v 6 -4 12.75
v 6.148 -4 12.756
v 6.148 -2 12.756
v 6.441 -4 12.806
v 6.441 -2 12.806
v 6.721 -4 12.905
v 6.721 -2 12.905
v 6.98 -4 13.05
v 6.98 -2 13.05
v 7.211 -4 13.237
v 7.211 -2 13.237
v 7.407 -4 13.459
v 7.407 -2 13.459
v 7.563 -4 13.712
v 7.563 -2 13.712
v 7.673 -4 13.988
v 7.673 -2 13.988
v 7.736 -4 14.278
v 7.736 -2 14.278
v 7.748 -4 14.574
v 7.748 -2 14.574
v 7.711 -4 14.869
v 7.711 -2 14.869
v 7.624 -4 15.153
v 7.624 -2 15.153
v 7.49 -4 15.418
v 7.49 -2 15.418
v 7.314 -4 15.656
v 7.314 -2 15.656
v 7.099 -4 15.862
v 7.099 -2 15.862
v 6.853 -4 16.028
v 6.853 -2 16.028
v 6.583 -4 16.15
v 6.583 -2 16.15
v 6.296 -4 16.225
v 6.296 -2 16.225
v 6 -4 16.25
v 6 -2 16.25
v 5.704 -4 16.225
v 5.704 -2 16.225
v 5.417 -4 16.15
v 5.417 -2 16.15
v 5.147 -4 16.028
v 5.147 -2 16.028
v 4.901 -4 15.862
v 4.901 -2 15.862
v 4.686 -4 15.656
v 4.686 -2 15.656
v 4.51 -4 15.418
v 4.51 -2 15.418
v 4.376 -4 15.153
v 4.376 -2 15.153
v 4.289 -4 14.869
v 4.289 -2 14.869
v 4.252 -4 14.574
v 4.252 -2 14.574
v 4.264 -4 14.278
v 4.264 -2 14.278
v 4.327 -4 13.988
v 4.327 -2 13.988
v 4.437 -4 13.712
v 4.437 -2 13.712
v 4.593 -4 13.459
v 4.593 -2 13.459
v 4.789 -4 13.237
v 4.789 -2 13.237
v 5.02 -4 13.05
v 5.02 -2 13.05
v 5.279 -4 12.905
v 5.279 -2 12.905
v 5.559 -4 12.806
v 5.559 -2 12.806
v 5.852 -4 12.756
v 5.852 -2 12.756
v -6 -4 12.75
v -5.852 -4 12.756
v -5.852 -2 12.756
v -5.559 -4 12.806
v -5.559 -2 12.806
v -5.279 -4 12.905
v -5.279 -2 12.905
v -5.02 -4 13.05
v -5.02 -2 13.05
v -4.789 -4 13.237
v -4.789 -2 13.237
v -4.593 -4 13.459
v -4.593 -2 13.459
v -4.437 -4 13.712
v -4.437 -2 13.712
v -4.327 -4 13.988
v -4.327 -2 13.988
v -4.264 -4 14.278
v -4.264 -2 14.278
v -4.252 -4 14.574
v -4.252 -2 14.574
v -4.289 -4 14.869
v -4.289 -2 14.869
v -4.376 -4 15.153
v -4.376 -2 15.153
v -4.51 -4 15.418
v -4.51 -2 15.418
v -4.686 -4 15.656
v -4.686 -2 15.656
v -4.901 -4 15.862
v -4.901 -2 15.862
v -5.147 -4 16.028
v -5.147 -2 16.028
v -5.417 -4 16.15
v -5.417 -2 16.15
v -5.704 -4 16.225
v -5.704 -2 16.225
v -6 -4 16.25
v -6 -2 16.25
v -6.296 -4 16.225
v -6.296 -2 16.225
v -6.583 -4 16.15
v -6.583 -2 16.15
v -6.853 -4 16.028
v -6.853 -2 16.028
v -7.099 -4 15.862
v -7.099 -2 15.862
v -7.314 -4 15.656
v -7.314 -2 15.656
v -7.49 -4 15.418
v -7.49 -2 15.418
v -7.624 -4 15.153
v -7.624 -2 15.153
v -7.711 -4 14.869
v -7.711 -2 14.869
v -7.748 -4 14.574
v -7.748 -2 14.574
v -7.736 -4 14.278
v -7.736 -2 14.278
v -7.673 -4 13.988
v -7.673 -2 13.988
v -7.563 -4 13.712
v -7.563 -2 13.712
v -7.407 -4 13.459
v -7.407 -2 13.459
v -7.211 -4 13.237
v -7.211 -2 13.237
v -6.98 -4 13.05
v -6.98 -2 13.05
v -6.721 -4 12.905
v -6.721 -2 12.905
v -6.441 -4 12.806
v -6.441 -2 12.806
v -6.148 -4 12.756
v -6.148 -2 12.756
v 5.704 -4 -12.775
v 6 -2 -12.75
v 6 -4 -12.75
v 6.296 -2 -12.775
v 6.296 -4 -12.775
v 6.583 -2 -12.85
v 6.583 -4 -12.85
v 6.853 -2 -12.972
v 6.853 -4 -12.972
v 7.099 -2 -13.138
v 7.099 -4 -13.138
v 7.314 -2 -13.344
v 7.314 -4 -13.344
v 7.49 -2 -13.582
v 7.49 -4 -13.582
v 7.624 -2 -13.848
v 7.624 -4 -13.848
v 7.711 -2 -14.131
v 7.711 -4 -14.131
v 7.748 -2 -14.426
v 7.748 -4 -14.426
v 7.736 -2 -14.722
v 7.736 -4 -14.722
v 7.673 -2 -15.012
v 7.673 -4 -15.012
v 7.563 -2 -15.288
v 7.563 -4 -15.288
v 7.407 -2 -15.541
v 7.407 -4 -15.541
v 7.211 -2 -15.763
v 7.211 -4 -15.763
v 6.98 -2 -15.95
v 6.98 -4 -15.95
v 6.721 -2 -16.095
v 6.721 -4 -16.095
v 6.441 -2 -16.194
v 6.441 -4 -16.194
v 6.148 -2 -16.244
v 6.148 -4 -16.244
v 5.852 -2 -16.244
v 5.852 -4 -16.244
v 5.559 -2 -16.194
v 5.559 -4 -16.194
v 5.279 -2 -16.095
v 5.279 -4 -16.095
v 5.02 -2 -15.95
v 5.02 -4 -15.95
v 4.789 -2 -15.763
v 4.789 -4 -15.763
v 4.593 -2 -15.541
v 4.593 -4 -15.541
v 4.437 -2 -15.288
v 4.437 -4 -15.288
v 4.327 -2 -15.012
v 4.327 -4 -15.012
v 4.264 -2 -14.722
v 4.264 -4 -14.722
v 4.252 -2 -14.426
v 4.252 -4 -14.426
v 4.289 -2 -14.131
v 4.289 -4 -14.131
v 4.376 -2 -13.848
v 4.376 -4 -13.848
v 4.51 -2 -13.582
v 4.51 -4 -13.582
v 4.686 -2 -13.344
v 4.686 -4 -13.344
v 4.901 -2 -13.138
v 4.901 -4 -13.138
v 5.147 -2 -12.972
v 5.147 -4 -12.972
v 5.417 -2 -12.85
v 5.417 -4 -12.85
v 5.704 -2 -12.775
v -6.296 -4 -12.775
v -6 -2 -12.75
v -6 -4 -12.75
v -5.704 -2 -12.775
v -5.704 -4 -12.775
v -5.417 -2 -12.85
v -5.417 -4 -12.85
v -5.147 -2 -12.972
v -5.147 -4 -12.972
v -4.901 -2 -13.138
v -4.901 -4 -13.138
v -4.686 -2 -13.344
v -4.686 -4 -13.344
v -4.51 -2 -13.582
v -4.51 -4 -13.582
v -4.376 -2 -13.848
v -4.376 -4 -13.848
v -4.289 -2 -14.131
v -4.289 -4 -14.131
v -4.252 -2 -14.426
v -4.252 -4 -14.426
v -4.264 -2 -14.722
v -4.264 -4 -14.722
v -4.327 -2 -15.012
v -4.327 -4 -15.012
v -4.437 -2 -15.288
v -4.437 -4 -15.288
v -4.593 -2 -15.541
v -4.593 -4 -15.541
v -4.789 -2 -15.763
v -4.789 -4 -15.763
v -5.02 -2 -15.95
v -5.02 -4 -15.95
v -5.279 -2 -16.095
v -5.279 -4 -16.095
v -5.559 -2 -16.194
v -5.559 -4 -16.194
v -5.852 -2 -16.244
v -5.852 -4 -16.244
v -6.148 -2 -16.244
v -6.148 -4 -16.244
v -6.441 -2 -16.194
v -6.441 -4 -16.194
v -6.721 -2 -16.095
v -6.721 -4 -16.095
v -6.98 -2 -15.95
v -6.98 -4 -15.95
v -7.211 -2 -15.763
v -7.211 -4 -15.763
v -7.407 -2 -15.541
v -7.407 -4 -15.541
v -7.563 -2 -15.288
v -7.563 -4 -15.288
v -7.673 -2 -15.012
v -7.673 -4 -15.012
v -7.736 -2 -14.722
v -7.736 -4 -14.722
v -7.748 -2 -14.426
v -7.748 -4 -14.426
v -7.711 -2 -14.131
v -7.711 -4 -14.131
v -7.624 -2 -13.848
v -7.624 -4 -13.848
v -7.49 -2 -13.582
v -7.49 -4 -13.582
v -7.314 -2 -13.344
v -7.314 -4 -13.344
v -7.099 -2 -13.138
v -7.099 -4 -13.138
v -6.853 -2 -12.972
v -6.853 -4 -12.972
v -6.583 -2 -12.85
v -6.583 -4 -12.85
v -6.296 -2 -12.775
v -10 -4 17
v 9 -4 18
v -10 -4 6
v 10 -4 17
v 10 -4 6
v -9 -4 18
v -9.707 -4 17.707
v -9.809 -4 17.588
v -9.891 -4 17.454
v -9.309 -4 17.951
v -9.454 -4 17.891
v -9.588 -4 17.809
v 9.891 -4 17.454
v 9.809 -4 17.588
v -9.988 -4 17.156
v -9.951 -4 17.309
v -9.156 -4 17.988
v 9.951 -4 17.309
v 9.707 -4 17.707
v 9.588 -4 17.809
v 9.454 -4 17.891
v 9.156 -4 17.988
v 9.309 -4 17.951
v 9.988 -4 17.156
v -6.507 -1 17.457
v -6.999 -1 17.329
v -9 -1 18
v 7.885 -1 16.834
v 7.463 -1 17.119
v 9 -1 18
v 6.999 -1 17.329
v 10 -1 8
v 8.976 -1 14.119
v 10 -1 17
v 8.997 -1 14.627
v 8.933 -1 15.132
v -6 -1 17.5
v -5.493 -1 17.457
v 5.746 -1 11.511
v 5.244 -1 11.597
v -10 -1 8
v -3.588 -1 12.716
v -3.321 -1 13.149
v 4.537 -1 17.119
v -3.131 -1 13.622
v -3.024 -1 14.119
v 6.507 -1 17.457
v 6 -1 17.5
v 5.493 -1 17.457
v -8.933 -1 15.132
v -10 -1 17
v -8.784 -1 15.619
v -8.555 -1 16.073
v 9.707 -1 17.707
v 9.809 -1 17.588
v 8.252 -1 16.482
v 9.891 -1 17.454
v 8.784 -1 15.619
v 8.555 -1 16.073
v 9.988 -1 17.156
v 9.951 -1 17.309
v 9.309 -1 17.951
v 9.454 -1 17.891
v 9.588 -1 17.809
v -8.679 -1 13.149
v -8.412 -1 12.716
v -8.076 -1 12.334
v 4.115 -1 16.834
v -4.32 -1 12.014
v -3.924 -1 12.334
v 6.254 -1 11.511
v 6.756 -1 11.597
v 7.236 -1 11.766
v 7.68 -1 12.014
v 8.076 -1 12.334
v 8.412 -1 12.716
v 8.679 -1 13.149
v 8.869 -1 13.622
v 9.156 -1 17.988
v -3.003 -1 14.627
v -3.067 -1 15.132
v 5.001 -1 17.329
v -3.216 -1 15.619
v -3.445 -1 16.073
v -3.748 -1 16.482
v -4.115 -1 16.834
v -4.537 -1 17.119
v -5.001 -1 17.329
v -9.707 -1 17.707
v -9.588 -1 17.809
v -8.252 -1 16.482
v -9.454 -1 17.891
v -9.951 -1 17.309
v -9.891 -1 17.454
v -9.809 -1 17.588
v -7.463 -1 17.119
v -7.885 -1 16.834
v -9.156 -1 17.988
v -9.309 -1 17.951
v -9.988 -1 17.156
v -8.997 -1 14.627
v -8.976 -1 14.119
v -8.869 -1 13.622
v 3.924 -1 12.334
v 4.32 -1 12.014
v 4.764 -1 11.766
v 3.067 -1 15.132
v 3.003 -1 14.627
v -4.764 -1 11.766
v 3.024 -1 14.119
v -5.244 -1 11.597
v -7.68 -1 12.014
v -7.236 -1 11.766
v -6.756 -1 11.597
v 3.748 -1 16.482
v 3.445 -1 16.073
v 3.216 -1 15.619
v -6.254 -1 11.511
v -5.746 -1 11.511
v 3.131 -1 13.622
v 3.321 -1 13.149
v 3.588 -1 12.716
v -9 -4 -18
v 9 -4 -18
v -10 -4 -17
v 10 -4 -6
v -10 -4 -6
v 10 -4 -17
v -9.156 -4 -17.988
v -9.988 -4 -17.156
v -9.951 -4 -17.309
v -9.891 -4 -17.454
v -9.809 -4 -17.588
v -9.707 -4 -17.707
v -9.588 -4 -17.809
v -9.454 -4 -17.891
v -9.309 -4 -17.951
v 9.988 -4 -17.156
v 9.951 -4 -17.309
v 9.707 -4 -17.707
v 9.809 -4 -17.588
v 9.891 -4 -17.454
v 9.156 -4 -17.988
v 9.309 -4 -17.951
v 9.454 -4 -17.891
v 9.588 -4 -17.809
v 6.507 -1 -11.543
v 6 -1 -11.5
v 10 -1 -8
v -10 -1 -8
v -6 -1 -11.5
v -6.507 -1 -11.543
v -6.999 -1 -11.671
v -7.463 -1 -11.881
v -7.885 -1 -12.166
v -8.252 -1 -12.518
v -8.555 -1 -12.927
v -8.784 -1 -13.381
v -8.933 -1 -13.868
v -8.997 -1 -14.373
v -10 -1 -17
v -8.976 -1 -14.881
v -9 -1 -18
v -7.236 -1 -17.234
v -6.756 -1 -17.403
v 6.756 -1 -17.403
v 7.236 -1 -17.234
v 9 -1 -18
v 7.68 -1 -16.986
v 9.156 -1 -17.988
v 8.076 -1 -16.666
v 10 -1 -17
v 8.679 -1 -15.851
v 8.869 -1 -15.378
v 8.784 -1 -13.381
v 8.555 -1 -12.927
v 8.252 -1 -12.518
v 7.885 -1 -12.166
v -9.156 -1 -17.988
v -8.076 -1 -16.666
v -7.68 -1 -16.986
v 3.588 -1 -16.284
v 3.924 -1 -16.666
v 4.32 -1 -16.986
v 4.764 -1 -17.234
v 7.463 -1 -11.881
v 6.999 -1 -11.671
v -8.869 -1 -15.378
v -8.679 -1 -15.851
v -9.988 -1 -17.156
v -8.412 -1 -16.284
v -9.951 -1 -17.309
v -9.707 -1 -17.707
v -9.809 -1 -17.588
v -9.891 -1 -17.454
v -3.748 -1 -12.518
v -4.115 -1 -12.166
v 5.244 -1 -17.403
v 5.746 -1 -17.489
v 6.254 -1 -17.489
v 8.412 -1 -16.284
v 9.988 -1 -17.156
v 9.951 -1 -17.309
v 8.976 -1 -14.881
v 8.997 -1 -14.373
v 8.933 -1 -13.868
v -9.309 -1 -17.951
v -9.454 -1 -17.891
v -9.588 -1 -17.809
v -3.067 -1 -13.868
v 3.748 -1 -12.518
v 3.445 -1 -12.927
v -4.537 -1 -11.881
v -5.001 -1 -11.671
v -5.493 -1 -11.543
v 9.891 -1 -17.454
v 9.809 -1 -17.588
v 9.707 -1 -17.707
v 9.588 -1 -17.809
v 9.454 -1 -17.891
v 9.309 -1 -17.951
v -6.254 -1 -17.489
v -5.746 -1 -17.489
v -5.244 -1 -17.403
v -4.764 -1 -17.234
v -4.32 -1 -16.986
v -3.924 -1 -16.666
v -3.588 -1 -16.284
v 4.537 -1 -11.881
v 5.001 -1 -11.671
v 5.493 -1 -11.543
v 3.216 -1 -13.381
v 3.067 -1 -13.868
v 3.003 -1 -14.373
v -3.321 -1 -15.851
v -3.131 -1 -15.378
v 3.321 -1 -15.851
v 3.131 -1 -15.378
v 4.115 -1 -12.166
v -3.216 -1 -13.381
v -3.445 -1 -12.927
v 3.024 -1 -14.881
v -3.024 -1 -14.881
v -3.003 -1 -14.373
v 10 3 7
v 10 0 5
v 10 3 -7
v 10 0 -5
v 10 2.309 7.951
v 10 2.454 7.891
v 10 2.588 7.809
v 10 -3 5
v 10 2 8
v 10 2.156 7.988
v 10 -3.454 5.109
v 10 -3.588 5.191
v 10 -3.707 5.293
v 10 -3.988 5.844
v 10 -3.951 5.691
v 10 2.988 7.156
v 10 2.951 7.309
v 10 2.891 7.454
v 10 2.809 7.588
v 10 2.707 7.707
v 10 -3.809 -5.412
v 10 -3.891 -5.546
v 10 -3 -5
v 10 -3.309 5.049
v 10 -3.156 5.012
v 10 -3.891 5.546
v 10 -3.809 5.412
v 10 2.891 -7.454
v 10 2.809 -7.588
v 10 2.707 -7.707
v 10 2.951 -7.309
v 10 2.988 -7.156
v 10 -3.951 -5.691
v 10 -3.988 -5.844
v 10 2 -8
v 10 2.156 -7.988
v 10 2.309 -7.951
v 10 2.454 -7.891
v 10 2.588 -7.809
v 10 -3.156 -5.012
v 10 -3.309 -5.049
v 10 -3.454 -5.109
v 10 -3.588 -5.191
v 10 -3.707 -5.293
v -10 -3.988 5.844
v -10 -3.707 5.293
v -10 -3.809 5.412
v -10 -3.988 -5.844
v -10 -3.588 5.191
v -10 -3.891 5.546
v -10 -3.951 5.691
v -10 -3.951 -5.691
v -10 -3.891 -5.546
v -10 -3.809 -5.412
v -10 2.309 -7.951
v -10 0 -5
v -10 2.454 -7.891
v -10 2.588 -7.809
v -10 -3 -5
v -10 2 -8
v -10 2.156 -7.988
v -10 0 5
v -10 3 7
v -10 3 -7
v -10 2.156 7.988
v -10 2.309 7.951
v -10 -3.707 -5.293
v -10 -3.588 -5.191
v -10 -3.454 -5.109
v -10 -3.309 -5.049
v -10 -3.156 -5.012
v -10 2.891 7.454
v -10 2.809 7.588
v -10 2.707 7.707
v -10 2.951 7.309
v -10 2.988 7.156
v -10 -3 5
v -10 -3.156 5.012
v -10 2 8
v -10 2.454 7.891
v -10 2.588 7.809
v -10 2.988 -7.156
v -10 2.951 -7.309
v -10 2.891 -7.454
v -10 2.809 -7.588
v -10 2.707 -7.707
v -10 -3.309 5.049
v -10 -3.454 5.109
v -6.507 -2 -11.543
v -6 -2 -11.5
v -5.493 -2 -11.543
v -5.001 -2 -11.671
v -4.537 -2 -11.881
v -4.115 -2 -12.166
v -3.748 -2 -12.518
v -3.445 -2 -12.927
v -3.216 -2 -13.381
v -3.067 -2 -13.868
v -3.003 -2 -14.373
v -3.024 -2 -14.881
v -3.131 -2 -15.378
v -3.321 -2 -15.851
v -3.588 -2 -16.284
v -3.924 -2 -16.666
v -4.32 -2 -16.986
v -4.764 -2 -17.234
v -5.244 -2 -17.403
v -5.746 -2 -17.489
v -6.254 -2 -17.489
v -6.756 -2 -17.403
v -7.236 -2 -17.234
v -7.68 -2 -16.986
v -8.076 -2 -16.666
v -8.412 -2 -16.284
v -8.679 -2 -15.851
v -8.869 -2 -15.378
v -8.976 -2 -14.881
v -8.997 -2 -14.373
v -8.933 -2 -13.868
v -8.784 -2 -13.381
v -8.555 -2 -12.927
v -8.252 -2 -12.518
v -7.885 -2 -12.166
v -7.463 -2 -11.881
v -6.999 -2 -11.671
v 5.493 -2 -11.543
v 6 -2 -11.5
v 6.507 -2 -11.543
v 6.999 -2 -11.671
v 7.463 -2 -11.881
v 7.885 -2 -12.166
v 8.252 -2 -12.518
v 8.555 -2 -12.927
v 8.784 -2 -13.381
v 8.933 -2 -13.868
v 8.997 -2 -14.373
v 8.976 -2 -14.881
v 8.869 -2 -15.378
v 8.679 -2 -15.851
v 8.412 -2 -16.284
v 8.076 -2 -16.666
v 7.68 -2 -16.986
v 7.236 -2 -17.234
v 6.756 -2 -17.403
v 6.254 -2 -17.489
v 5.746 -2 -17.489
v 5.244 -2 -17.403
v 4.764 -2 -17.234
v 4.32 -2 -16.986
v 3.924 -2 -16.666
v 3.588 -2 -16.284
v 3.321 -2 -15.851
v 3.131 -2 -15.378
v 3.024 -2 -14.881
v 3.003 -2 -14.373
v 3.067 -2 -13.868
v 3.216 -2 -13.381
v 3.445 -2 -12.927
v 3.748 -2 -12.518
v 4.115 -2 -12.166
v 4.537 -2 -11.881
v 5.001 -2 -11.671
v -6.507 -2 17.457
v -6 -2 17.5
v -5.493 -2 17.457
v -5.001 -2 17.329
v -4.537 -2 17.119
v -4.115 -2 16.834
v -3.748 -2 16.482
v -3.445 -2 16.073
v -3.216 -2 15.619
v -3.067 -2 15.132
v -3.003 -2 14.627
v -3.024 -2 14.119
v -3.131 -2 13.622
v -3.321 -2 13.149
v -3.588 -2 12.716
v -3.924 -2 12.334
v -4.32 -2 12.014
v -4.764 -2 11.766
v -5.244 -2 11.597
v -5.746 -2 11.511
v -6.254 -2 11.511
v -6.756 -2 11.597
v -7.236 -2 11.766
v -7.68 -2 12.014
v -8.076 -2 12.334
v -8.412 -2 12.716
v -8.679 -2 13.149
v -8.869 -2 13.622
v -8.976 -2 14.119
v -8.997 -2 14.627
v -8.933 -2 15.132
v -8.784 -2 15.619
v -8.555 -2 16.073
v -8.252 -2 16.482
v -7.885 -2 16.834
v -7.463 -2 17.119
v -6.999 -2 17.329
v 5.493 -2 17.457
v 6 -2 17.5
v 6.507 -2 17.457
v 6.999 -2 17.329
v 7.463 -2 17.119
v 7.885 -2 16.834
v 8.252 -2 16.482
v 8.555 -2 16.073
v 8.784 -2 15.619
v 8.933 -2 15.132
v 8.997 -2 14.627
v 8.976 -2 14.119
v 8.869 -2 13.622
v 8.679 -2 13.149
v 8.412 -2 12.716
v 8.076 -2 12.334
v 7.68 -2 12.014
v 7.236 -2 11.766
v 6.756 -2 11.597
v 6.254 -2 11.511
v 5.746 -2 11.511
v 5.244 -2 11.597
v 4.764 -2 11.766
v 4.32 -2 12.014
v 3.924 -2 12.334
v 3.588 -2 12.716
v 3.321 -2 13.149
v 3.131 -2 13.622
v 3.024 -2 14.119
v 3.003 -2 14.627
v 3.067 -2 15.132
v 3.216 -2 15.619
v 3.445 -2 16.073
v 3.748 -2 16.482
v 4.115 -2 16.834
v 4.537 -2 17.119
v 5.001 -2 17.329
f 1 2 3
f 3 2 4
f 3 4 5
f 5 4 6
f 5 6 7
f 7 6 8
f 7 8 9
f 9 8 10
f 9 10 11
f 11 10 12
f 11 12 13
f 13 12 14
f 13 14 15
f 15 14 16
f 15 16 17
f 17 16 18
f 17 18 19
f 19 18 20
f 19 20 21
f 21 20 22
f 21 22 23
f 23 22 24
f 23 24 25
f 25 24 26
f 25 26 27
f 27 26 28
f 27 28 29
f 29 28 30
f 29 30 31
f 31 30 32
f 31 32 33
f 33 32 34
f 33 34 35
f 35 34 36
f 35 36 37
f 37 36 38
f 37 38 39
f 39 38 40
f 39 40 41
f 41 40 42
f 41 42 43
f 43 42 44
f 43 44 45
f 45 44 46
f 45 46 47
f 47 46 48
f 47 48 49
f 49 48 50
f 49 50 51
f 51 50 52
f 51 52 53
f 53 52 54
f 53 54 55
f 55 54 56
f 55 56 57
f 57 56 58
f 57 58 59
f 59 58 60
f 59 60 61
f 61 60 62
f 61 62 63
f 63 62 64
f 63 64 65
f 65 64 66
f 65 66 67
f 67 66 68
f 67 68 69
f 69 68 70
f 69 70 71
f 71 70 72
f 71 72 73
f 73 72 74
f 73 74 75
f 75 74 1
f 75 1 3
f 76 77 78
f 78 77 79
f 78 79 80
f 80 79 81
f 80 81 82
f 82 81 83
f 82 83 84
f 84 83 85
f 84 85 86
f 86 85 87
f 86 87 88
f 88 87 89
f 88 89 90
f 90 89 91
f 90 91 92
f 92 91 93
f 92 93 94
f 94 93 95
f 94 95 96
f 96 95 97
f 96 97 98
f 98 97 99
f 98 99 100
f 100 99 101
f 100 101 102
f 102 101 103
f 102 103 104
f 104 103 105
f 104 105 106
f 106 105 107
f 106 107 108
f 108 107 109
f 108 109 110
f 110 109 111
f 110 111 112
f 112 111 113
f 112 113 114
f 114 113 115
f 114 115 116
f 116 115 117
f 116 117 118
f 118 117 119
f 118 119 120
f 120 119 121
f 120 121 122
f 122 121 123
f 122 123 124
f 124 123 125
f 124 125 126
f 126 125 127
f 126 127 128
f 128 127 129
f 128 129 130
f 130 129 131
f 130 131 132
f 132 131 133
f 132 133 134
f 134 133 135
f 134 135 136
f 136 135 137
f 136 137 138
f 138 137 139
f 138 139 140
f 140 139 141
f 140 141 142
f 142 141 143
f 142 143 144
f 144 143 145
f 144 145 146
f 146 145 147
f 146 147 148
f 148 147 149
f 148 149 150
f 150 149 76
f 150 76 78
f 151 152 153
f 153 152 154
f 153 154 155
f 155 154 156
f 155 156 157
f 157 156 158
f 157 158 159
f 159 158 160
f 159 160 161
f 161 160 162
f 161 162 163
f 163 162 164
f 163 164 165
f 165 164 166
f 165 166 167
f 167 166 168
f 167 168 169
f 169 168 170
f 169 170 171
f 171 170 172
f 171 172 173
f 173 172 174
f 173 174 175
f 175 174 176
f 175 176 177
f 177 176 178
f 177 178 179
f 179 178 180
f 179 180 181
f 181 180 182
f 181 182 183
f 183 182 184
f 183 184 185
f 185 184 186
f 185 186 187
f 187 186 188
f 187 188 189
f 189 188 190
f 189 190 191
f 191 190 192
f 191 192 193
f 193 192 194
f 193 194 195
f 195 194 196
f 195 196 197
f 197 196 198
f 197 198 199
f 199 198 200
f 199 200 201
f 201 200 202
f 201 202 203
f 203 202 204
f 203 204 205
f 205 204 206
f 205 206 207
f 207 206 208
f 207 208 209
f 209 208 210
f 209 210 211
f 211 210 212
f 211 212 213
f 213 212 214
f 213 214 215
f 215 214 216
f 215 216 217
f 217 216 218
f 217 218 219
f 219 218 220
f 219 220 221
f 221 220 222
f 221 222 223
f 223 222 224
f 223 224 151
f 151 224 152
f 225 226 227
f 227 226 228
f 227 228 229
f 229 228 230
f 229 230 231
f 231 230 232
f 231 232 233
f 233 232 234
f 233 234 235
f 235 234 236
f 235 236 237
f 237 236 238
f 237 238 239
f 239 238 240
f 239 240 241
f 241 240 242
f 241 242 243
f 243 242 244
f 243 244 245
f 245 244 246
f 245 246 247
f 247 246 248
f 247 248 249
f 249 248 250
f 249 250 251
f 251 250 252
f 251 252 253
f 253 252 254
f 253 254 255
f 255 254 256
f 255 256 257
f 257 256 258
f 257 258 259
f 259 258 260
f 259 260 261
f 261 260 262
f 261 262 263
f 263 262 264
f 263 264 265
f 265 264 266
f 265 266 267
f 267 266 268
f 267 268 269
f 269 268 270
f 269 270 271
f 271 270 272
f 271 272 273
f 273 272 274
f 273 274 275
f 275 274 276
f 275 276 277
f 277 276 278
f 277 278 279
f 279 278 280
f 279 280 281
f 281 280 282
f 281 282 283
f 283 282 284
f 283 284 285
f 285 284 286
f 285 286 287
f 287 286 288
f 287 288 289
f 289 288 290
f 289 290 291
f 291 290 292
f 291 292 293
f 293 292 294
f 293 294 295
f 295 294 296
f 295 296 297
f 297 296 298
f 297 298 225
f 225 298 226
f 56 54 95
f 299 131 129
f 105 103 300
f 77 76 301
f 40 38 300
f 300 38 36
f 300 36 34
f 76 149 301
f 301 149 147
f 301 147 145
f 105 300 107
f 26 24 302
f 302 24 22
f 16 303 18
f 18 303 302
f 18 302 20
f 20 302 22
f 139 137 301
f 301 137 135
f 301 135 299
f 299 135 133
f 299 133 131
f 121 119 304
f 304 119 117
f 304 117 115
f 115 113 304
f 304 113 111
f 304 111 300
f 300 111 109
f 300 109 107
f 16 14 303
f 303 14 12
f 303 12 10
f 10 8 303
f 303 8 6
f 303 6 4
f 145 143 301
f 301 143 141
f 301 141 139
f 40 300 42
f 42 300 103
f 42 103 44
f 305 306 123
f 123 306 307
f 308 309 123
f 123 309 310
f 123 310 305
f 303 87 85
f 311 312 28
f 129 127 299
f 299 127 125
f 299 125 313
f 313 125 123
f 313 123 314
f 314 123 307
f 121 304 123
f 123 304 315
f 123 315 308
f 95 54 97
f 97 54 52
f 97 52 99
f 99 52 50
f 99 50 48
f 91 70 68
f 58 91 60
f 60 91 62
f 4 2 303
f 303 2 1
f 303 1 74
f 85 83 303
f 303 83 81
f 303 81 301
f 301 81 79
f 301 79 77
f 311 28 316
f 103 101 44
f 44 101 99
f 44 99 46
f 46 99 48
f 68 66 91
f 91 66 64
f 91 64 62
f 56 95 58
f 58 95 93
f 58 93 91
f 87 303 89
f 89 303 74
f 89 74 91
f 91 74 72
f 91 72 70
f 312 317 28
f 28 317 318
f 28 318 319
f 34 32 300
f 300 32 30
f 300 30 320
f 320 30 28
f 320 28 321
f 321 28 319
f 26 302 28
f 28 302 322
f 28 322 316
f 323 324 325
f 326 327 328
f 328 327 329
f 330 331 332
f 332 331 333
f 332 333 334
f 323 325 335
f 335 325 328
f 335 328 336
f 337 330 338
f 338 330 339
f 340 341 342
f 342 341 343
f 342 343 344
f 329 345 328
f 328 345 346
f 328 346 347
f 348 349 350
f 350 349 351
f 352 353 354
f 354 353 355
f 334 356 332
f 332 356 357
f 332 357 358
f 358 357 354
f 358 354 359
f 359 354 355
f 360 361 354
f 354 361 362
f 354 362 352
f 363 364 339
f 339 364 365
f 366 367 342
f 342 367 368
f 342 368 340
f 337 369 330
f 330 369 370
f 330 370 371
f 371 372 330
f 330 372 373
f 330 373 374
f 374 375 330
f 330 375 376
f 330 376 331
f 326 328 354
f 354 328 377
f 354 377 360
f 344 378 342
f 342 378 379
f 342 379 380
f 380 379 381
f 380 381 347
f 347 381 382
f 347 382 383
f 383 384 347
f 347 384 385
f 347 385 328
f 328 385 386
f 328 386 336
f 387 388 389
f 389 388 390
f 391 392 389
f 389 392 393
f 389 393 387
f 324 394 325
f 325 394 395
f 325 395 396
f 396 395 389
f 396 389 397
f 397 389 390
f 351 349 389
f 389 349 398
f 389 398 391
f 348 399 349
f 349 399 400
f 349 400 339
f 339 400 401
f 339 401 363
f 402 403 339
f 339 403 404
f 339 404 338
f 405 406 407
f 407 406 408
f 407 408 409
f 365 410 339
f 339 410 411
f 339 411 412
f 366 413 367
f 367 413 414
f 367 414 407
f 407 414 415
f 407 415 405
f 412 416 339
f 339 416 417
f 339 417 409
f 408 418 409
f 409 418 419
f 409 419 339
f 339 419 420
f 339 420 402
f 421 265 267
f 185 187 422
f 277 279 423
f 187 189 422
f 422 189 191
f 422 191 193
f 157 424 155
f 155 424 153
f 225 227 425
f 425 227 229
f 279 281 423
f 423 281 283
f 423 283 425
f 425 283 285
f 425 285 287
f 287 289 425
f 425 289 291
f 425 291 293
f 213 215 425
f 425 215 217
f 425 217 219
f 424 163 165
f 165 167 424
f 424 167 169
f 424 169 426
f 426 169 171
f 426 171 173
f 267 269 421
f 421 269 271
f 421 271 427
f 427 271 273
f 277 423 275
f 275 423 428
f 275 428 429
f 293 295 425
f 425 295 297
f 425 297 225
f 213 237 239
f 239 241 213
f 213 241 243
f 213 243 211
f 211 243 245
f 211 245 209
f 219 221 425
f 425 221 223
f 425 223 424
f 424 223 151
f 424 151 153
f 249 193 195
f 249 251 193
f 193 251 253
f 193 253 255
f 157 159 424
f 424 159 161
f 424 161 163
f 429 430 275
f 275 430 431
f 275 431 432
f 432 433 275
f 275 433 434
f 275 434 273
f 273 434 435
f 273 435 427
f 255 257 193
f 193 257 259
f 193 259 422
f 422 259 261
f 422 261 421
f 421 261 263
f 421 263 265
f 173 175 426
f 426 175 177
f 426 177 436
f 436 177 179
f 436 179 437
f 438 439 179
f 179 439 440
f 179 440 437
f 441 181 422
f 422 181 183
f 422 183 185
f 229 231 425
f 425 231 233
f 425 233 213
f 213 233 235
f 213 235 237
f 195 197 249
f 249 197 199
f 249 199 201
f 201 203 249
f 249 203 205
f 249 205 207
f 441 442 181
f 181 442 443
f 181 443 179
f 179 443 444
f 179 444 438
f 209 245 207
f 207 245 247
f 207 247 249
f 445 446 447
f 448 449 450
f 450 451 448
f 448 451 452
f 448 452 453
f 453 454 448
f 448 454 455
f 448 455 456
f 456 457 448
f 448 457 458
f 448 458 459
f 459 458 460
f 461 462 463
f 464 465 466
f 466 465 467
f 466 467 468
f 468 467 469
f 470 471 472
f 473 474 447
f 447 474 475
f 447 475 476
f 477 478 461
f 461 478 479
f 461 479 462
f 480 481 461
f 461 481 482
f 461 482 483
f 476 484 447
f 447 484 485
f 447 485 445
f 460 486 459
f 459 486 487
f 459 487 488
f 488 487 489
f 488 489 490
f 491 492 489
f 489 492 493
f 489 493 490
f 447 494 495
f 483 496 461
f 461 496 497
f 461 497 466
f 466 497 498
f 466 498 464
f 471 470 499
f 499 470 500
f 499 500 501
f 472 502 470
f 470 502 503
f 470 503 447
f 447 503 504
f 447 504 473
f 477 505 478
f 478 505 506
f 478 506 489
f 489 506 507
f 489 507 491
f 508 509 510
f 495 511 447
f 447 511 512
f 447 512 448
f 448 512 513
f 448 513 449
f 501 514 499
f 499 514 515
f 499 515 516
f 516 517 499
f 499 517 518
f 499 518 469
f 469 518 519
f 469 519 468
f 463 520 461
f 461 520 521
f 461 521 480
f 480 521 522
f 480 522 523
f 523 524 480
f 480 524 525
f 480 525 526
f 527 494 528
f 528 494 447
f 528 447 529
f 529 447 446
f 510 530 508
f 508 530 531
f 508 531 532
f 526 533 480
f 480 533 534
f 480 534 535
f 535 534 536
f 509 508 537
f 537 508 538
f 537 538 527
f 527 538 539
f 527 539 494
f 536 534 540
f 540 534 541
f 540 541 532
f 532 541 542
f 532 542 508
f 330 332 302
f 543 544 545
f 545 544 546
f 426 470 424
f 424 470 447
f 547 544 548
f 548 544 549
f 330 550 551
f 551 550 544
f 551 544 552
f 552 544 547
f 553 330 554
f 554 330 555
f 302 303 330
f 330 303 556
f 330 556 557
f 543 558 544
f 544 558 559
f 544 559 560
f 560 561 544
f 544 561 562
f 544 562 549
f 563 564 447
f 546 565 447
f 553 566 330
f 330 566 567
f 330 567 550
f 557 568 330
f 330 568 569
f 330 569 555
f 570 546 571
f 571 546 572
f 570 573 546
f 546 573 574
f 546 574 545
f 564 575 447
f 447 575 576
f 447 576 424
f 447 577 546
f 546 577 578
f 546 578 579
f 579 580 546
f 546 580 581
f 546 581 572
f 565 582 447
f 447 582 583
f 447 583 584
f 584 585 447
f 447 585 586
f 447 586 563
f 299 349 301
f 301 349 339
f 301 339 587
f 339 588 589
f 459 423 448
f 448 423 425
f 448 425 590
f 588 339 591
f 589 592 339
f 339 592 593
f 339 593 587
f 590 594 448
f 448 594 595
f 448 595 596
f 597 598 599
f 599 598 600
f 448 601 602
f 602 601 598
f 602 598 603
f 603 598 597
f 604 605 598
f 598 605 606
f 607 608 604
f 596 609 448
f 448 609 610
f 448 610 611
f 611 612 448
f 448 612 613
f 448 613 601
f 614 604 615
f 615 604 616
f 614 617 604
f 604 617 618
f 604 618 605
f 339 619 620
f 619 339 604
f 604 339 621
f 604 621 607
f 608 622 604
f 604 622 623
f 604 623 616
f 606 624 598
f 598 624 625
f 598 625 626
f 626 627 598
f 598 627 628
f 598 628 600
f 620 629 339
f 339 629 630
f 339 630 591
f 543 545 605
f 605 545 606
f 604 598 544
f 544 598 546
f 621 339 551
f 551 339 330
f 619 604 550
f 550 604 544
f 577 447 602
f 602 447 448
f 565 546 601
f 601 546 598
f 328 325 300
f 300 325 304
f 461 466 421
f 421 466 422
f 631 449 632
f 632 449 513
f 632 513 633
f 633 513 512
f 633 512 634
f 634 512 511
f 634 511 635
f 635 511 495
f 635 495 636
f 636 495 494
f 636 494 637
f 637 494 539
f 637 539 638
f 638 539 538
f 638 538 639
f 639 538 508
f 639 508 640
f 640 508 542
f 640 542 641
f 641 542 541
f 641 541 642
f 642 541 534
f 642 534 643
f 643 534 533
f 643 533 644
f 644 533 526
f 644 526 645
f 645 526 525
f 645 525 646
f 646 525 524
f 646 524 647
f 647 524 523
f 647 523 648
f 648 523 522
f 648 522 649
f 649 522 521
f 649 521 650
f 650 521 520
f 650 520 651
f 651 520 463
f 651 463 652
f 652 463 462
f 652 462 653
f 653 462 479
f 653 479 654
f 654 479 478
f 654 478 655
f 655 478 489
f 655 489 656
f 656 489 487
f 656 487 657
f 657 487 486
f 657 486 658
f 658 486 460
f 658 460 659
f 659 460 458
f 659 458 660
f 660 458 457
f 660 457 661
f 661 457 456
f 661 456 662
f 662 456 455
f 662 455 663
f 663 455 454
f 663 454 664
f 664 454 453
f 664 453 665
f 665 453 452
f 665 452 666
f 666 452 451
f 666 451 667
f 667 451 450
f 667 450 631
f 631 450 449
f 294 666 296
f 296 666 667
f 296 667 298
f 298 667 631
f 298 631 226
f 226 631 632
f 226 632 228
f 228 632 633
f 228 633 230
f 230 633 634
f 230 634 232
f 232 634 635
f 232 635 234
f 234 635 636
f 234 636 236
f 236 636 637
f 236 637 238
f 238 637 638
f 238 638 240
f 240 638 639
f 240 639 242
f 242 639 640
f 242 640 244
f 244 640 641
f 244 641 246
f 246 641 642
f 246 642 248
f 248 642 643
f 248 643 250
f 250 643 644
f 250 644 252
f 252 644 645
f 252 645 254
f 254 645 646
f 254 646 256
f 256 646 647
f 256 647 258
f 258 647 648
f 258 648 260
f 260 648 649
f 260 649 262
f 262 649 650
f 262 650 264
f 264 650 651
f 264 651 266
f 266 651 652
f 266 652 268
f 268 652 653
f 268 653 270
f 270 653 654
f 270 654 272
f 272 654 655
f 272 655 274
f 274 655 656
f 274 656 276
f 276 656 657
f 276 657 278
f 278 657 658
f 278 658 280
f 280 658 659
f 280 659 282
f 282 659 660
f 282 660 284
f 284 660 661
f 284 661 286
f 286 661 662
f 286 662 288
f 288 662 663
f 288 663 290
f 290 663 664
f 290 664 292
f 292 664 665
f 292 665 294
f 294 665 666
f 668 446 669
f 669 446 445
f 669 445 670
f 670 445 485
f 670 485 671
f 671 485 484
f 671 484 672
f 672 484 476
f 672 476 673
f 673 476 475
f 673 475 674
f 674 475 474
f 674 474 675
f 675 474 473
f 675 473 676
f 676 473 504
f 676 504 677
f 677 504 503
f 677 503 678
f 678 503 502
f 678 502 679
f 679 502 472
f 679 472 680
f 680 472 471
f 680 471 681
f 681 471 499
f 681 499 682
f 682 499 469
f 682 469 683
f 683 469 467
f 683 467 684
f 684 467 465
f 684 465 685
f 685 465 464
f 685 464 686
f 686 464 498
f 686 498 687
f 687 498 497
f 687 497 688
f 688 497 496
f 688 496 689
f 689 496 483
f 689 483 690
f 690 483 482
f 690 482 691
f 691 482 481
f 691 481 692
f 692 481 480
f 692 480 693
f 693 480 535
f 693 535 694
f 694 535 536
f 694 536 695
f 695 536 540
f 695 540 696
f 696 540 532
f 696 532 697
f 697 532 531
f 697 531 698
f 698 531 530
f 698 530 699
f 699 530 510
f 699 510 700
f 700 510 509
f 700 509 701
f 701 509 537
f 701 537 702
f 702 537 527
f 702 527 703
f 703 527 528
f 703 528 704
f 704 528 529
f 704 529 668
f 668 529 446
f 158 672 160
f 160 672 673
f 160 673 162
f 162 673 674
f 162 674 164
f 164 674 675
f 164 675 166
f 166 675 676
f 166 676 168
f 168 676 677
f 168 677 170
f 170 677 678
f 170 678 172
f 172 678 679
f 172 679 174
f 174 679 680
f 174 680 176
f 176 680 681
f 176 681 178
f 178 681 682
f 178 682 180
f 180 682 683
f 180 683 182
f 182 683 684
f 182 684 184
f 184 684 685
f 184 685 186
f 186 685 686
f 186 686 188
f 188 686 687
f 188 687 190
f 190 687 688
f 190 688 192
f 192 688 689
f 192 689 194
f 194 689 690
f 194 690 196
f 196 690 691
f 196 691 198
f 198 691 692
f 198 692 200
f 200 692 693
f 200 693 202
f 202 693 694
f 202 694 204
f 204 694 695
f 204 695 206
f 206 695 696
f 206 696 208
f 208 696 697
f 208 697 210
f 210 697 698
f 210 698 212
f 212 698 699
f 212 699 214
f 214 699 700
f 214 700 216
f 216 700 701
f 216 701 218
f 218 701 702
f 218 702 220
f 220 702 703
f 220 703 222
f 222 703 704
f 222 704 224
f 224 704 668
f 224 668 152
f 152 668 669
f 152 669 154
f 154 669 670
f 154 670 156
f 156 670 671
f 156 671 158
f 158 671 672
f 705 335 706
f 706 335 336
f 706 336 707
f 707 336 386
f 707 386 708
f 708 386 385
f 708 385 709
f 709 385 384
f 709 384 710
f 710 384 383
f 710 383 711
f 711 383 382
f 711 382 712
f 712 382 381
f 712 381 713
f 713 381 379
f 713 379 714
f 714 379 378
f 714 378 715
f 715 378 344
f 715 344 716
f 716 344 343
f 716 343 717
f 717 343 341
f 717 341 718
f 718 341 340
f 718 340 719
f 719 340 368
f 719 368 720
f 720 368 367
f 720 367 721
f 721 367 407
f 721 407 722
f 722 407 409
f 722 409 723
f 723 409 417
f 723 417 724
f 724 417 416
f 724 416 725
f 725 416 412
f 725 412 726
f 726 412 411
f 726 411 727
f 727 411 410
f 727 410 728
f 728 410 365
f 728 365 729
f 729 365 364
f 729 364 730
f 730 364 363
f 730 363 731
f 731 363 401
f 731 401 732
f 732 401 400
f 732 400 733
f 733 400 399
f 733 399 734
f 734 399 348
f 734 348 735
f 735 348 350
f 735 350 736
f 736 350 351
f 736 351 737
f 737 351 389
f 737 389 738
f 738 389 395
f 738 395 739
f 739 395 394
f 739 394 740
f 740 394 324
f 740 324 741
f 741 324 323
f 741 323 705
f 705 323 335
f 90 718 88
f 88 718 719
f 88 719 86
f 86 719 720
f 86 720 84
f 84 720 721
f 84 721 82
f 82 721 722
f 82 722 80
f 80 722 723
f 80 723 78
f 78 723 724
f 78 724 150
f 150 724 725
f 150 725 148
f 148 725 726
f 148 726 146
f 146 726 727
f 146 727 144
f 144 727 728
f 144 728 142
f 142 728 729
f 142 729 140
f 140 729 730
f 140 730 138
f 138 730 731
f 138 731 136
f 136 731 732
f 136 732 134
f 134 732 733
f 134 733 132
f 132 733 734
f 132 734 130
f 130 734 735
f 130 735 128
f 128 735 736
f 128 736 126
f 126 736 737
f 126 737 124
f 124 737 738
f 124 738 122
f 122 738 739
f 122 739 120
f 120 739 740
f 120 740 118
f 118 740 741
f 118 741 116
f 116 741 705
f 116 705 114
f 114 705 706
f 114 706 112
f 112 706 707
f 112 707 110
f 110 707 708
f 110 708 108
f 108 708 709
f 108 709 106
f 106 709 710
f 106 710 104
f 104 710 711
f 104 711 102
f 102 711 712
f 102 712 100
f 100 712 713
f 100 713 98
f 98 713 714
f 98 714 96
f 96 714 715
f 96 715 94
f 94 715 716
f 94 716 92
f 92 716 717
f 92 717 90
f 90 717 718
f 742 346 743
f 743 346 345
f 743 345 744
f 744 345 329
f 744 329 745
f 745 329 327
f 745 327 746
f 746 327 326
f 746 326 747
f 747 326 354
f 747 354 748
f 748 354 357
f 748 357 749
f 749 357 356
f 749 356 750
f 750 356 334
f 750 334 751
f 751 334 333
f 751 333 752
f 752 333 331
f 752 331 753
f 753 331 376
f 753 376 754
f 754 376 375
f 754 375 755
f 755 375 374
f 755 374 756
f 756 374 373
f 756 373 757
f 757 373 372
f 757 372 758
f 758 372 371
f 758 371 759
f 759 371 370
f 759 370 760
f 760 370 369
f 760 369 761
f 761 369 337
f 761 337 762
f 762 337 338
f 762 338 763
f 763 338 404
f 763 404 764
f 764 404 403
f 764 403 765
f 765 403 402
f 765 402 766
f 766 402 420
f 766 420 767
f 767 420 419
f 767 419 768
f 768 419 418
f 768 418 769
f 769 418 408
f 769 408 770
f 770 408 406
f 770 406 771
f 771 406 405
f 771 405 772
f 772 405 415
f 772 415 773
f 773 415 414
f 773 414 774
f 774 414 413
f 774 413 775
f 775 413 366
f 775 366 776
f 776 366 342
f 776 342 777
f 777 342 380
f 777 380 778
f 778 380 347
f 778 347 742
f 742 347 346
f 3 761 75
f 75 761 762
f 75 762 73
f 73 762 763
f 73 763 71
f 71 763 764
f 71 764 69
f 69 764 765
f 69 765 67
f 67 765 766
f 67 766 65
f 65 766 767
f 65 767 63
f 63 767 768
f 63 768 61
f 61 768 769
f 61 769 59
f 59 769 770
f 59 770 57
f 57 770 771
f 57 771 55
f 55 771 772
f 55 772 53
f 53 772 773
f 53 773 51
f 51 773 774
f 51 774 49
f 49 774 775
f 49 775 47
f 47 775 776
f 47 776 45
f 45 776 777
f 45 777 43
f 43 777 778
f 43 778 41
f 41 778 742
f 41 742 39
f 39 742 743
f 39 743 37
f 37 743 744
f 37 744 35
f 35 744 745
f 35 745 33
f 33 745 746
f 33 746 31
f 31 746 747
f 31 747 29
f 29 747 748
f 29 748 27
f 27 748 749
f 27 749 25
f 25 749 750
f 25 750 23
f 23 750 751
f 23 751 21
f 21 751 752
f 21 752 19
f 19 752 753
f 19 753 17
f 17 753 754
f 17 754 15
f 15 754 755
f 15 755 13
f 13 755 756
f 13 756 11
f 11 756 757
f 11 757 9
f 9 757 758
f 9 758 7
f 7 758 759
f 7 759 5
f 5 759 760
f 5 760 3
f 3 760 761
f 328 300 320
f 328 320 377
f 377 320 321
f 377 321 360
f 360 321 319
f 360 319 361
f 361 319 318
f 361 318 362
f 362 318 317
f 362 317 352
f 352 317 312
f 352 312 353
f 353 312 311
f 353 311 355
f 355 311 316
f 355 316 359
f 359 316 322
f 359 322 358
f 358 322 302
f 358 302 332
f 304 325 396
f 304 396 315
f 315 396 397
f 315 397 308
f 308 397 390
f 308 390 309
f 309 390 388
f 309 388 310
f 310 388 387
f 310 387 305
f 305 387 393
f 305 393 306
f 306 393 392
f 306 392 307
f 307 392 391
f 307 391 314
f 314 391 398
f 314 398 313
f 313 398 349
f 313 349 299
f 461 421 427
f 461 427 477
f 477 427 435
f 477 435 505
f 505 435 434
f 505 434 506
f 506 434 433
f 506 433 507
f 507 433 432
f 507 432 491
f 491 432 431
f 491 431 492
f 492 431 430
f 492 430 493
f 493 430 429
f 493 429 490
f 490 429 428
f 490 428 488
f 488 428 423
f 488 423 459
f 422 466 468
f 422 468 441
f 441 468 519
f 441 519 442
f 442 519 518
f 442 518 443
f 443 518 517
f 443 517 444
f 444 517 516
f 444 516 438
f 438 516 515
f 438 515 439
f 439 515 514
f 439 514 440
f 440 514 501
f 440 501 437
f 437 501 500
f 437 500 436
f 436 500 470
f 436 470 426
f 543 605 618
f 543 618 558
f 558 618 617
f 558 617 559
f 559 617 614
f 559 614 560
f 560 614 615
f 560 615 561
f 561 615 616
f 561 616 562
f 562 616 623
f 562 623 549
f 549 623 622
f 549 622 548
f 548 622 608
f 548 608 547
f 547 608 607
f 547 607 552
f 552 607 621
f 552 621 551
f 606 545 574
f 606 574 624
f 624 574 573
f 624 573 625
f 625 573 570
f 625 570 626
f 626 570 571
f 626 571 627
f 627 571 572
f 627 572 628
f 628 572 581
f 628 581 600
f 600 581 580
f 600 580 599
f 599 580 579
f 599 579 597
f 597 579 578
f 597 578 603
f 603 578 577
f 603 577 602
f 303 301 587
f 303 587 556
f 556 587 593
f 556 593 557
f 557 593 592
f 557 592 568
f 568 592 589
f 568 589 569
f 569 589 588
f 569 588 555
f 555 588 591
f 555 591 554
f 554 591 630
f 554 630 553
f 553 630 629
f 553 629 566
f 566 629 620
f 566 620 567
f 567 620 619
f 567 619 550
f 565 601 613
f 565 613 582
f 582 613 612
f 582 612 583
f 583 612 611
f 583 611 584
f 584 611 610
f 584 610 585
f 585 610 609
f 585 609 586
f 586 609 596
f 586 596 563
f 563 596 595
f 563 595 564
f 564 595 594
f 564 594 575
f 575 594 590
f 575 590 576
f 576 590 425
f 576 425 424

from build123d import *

# Parameters (mm, degrees)
SKETCH_21_W         = 20
SKETCH_21_H         = 10
EXTRUDE_3_DEPTH     = 3
SKETCH_22_W         = 20
SKETCH_22_H         = 3
EXTRUDE_4_DEPTH     = 7
SKETCH_23_W         = 20
SKETCH_23_H         = 3
EXTRUDE_5_DEPTH     = 10
SKETCH_24_W         = 20
SKETCH_24_H         = 3
EXTRUDE_6_DEPTH     = 10
SKETCH_25_R         = 1.75
CUT_EXTRUDE_1_DEPTH = 21.976176963
SKETCH_26_R         = 3
SKETCH_26_R_2       = 1.75
CUT_EXTRUDE_2_DEPTH = 1
FILLET_1_R          = 1


with BuildPart() as part:
    # 草图21 → 凸台-拉伸3 (new body)
    with BuildSketch(Plane(origin=(0, 0, 0), x_dir=(1, 0, 0), z_dir=(0, 1, 0))):
        Rectangle(SKETCH_21_W, SKETCH_21_H)
    extrude(amount=EXTRUDE_3_DEPTH)

    # 草图22 → 凸台-拉伸4 (add)
    with BuildSketch(Plane(origin=(0, 3, 0), x_dir=(1, 0, 0), z_dir=(0, 1, 0))):
        with Locations((0, -6.5)):
            Rectangle(SKETCH_22_W, SKETCH_22_H)
        with Locations((0, 6.5)):
            Rectangle(SKETCH_22_W, SKETCH_22_H)
    extrude(amount=-EXTRUDE_4_DEPTH)

    # 草图23 → 凸台-拉伸5 (add)
    with BuildSketch(Plane.XY.offset(8)):
        with Locations((0, -2.5)):
            Rectangle(SKETCH_23_W, SKETCH_23_H)
    extrude(amount=EXTRUDE_5_DEPTH)

    # 草图24 → 凸台-拉伸6 (add)
    with BuildSketch(Plane(origin=(0, 0, -8), x_dir=(-1, 0, 0), z_dir=(0, 0, -1))):
        with Locations((0, -2.5)):
            Rectangle(SKETCH_24_W, SKETCH_24_H)
    extrude(amount=EXTRUDE_6_DEPTH)

    # 草图25 → 切除-拉伸1 (cut, through all)
    with BuildSketch(Plane(origin=(0, -1, 0), x_dir=(1, 0, 0), z_dir=(0, 1, 0))):
        with Locations(Location((-6, 14.5, 0), (0, 0, 270))):
            Circle(SKETCH_25_R)
        with Locations(Location((6, 14.5, 0), (0, 0, 270))):
            Circle(SKETCH_25_R)
        with Locations(Location((-6, -14.5, 0), (0, 0, 270))):
            Circle(SKETCH_25_R)
        with Locations(Location((6, -14.5, 0), (0, 0, 270))):
            Circle(SKETCH_25_R)
    extrude(amount=-CUT_EXTRUDE_1_DEPTH, mode=Mode.SUBTRACT)

    # 草图26 → 切除-拉伸2 (cut)
    # profile 1 of 4: a face of its own
    with BuildSketch(Plane(origin=(0, -1, 0), x_dir=(1, 0, 0), z_dir=(0, 1, 0))):
        with Locations(Location((-6, 14.5, 0), (0, 0, 270))):
            Circle(SKETCH_26_R)
        with Locations(Location((-6, 14.5, 0), (0, 0, 270))):
            Circle(SKETCH_26_R_2, mode=Mode.SUBTRACT)
    # profile 2 of 4: a face of its own
    with BuildSketch(Plane(origin=(0, -1, 0), x_dir=(1, 0, 0), z_dir=(0, 1, 0))):
        with Locations(Location((6, 14.5, 0), (0, 0, 270))):
            Circle(SKETCH_26_R)
        with Locations(Location((6, 14.5, 0), (0, 0, 270))):
            Circle(SKETCH_26_R_2, mode=Mode.SUBTRACT)
    # profile 3 of 4: a face of its own
    with BuildSketch(Plane(origin=(0, -1, 0), x_dir=(1, 0, 0), z_dir=(0, 1, 0))):
        with Locations(Location((-6, -14.5, 0), (0, 0, 270))):
            Circle(SKETCH_26_R)
        with Locations(Location((-6, -14.5, 0), (0, 0, 270))):
            Circle(SKETCH_26_R_2, mode=Mode.SUBTRACT)
    # profile 4 of 4: a face of its own
    with BuildSketch(Plane(origin=(0, -1, 0), x_dir=(1, 0, 0), z_dir=(0, 1, 0))):
        with Locations(Location((6, -14.5, 0), (0, 0, 270))):
            Circle(SKETCH_26_R)
        with Locations(Location((6, -14.5, 0), (0, 0, 270))):
            Circle(SKETCH_26_R_2, mode=Mode.SUBTRACT)
    extrude(amount=-CUT_EXTRUDE_2_DEPTH, mode=Mode.SUBTRACT)

    # 圆角1
    fillet_1_edges = [part.edges().sort_by_distance(p)[0] for p in [
        (10, -2.5, 18),
        (-10, -2.5, 18),
        (-10, -2.5, -18),
        (10, -2.5, -18),
        (0, 3, 8),
        (0, 3, -8),
        (0, -4, 5),
        (0, -4, -5),
    ]]
    fillet(fillet_1_edges, radius=FILLET_1_R)


solid = part.part
